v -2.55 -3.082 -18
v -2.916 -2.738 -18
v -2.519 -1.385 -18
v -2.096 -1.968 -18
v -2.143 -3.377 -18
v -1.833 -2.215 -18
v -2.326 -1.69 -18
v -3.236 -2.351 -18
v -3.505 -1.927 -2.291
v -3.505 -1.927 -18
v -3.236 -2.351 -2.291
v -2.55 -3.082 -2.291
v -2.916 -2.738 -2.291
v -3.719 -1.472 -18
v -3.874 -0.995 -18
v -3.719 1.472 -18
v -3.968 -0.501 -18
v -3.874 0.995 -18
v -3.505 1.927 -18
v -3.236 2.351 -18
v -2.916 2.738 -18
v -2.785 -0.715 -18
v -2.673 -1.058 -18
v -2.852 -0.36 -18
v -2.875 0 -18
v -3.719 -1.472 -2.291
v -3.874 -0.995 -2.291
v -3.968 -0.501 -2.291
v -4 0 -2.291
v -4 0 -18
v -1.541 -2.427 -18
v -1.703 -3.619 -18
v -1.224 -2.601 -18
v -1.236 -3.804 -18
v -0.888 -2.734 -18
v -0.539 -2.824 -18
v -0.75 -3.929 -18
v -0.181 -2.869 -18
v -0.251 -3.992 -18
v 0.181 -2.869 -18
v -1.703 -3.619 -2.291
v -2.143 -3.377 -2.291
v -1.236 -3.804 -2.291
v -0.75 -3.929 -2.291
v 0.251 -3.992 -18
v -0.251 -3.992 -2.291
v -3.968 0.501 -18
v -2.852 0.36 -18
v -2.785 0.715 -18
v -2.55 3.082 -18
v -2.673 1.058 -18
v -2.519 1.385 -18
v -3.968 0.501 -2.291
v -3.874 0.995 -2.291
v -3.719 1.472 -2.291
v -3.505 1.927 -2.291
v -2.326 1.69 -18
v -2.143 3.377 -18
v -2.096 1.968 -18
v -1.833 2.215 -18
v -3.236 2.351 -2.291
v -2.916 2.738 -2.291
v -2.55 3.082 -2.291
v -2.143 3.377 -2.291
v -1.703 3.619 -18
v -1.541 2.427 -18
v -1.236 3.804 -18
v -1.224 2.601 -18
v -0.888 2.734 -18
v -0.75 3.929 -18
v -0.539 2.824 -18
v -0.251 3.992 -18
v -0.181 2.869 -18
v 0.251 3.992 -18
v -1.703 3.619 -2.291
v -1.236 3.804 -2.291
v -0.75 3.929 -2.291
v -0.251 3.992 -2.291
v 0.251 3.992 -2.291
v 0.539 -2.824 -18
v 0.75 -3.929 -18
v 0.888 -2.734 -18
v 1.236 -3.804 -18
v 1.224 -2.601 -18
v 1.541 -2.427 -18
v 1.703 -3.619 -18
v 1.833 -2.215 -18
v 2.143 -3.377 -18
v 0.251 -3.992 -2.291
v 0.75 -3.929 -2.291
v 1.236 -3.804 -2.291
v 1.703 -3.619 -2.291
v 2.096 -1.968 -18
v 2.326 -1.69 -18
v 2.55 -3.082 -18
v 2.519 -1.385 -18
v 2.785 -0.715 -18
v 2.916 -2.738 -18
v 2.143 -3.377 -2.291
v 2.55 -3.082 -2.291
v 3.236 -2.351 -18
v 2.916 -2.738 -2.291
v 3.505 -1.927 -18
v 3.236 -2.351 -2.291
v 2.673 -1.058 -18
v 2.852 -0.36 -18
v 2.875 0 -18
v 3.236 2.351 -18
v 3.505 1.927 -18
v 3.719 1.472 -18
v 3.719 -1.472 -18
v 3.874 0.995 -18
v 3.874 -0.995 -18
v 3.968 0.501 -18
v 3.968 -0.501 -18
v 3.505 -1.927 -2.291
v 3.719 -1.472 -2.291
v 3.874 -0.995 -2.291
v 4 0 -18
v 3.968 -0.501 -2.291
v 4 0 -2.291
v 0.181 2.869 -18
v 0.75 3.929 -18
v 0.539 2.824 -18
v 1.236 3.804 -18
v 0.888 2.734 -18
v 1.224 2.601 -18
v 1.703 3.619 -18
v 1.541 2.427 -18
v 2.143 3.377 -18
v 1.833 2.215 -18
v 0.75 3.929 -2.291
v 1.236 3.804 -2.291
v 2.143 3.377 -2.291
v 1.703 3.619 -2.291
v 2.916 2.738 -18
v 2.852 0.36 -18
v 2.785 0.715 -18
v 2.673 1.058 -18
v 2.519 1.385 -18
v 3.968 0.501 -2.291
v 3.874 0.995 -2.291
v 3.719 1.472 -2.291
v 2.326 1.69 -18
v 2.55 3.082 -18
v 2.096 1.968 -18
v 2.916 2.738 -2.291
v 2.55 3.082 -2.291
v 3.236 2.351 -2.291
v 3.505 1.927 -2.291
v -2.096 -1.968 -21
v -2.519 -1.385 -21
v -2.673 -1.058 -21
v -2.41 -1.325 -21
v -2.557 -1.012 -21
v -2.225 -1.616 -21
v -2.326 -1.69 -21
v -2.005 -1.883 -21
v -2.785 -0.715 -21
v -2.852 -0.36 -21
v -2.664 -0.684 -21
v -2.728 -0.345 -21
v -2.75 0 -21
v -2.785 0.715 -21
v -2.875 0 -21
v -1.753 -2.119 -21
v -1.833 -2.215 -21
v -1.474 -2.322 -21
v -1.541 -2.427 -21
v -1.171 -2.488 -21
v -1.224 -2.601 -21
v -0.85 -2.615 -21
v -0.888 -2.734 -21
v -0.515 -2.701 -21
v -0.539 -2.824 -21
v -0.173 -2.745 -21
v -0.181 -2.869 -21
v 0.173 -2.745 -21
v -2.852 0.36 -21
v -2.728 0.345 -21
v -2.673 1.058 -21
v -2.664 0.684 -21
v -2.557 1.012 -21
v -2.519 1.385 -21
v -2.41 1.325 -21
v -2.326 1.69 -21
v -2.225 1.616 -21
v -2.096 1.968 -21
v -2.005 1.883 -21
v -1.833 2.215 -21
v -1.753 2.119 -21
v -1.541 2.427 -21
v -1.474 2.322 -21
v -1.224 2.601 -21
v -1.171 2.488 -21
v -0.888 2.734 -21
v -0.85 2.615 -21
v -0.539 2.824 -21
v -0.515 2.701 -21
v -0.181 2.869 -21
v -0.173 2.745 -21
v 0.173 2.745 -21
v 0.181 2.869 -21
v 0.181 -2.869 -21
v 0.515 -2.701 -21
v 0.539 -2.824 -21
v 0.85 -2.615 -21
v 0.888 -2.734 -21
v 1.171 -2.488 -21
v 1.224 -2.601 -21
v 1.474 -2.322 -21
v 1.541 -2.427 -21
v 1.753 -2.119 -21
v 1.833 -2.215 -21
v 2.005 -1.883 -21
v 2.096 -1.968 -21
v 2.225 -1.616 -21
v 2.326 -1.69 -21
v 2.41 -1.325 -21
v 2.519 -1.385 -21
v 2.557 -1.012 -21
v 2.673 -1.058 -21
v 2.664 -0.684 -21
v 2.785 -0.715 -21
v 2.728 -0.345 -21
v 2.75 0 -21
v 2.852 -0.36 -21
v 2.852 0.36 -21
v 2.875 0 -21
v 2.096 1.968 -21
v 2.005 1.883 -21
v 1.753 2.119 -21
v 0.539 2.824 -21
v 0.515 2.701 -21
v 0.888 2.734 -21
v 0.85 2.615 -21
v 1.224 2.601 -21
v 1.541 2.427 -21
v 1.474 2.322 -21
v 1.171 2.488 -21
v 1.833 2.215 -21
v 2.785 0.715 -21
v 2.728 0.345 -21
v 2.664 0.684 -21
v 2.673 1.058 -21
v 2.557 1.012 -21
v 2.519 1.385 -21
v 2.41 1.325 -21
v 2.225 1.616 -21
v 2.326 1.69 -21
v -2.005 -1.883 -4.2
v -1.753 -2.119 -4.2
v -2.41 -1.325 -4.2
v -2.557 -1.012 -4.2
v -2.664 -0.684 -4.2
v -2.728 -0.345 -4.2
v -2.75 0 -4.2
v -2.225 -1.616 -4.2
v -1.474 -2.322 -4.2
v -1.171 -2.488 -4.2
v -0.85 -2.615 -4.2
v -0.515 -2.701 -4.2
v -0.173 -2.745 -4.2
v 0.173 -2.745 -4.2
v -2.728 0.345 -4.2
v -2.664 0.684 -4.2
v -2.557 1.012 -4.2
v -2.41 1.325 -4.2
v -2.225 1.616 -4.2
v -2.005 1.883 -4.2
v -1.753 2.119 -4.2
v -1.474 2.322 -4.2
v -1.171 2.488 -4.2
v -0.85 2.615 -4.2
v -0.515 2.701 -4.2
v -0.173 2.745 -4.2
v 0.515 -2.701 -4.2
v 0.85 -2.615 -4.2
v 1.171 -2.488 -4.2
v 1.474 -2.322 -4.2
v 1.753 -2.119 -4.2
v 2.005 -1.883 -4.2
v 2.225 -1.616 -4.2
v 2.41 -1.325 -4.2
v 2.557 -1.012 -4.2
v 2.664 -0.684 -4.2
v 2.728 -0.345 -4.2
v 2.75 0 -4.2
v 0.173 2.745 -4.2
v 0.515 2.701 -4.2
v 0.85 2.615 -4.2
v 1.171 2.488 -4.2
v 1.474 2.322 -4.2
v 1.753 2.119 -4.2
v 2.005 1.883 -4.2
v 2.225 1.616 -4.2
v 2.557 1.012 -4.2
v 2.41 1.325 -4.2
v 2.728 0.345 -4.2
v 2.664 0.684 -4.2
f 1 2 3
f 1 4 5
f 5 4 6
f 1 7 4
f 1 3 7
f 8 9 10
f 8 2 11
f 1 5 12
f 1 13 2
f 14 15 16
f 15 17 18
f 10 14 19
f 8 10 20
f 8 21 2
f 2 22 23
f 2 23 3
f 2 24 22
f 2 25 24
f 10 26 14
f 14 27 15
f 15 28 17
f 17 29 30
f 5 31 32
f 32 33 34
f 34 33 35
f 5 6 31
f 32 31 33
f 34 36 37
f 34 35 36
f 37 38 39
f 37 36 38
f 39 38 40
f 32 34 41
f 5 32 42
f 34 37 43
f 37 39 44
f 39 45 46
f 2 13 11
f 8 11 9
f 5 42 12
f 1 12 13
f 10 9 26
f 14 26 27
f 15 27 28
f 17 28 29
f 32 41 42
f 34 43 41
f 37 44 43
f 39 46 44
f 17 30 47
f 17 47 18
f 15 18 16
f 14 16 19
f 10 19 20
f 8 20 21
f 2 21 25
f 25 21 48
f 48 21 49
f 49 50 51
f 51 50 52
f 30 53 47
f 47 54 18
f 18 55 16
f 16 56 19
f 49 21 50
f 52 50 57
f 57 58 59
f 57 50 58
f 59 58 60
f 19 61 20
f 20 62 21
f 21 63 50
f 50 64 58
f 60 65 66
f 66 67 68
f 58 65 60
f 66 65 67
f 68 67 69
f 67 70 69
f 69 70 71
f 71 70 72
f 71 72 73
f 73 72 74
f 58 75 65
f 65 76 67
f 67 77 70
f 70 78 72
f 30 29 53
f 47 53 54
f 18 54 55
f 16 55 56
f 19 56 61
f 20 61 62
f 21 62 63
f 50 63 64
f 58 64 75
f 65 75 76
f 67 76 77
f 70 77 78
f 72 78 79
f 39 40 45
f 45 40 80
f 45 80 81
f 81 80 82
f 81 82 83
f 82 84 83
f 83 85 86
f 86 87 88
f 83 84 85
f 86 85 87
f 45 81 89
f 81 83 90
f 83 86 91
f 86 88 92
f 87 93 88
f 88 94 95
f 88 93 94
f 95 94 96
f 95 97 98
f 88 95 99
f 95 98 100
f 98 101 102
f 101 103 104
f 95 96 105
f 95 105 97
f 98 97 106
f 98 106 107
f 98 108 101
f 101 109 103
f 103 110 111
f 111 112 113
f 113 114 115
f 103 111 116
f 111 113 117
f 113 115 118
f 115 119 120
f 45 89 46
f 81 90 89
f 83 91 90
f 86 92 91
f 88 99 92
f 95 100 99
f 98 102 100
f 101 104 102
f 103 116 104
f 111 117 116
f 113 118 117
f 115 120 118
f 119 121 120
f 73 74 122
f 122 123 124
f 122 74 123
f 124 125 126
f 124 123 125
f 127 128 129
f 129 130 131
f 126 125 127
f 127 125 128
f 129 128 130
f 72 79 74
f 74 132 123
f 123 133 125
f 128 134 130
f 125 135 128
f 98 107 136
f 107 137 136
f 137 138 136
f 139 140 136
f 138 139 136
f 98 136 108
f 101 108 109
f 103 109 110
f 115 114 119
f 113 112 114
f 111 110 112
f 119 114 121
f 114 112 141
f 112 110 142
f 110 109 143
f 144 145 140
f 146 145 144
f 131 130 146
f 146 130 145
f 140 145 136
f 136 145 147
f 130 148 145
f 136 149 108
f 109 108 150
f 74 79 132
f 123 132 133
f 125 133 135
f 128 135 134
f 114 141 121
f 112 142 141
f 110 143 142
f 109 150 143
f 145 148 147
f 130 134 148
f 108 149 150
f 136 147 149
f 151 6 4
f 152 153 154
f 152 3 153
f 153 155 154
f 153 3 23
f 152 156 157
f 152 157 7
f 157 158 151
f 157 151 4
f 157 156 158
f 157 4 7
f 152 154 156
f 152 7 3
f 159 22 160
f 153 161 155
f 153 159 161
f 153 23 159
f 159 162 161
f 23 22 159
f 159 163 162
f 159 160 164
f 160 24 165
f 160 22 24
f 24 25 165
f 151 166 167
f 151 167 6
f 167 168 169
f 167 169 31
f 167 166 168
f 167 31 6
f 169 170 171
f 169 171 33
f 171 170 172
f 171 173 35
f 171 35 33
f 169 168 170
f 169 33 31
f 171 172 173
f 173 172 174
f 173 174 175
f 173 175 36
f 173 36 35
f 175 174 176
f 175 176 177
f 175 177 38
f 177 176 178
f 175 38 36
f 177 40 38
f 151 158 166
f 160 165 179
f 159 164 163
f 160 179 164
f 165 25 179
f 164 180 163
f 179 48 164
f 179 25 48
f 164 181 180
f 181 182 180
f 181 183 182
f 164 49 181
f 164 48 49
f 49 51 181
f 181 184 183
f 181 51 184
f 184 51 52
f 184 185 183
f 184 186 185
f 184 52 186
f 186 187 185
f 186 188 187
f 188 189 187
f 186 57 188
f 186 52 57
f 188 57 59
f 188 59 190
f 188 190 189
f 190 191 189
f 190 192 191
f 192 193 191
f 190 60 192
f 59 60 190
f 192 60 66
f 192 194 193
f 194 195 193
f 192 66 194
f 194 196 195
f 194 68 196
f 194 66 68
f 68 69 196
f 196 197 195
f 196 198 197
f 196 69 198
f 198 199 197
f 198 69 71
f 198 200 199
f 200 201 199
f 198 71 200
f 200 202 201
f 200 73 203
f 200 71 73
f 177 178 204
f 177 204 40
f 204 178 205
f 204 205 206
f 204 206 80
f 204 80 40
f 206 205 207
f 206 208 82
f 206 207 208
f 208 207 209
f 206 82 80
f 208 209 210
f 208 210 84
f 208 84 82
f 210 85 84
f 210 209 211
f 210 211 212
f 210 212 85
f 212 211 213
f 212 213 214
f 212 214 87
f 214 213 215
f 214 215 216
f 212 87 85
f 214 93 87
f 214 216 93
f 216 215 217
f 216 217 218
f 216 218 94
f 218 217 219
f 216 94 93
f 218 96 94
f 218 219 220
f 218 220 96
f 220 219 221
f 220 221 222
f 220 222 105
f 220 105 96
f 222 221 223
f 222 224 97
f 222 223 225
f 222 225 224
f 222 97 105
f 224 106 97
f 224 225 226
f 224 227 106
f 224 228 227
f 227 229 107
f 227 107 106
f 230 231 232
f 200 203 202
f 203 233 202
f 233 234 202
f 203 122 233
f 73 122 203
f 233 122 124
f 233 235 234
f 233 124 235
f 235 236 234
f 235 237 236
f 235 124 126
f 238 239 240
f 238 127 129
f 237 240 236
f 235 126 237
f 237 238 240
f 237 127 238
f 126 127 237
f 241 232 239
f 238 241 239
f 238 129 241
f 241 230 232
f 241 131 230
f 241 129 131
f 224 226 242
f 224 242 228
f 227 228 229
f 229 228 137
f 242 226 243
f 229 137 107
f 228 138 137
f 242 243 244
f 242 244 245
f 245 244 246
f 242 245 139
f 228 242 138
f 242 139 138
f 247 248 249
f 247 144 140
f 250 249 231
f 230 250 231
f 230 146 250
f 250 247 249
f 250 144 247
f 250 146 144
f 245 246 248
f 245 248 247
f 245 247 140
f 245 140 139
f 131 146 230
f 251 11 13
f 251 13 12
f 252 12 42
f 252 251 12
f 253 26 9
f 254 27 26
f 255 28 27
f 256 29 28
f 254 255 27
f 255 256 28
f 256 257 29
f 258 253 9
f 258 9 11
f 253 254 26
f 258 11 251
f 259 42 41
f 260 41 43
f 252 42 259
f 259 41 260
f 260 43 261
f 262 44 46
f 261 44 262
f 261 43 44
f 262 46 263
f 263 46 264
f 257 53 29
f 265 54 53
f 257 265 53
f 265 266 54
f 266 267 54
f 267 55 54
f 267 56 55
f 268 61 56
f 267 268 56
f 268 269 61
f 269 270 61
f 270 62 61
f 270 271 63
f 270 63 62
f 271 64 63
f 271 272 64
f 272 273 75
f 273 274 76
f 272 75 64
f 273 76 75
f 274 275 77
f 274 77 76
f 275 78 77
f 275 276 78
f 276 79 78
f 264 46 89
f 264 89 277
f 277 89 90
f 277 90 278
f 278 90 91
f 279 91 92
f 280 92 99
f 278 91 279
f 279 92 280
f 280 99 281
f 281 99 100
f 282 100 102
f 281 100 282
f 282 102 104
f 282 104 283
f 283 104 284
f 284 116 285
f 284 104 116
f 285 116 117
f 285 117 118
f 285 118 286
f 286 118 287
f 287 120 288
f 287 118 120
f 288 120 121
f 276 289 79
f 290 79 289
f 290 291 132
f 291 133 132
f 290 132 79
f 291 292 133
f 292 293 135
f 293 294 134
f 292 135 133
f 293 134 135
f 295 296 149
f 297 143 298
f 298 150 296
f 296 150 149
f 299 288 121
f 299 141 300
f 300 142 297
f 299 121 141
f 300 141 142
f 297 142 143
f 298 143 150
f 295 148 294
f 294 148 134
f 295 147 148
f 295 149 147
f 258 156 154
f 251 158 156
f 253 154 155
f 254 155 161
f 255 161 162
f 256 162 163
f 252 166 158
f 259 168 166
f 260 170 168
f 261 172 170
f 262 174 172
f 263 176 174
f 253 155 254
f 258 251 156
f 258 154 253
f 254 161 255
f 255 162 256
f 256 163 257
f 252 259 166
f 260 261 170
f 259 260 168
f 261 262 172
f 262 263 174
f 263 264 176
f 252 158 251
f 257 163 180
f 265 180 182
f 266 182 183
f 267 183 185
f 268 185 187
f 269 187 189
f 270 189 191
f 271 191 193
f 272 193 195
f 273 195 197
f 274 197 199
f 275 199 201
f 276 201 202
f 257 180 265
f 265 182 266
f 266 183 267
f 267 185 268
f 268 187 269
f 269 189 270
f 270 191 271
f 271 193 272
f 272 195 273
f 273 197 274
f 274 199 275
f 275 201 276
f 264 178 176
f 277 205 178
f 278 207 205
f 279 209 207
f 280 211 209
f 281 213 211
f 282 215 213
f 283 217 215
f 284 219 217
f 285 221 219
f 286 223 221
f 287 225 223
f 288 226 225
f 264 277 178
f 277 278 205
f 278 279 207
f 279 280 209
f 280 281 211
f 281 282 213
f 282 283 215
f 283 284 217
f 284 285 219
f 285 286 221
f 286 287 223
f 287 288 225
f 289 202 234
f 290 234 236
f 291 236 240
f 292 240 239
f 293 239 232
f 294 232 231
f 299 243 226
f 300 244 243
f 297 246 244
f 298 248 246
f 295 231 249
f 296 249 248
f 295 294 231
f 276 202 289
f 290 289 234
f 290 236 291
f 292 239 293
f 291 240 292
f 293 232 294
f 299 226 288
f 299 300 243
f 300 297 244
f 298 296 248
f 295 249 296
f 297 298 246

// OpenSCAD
$fn = 50;

difference() {
	union() {
		translate(v = [0, 0, -18.0]) {
			cylinder(h = 21, r = 4.0);
		}
		#translate(v = [0, 0, -21.0]) {
			cylinder(h = 21, r = 2.875);
		}
	}
	union() {
		translate(v = [0, 0, 0]) {
			rotate(a = [0, 0, 0]) {
				difference() {
					union() {
						translate(v = [0, 0, -21.0]) {
							cylinder(h = 21, r = 2.25);
						}
						translate(v = [0, 0, -4.2]) {
							cylinder(h = 4.2, r1 = 2.75, r2 = 5.5);
						}
						translate(v = [0, 0, -21.0]) {
							cylinder(h = 21, r = 2.75);
						}
						translate(v = [0, 0, -21.0]) {
							cylinder(h = 21, r = 2.25);
						}
					}
					union();
				}
			}
		}
		#cylinder(h = 3, r = 6.25);
	}
}
